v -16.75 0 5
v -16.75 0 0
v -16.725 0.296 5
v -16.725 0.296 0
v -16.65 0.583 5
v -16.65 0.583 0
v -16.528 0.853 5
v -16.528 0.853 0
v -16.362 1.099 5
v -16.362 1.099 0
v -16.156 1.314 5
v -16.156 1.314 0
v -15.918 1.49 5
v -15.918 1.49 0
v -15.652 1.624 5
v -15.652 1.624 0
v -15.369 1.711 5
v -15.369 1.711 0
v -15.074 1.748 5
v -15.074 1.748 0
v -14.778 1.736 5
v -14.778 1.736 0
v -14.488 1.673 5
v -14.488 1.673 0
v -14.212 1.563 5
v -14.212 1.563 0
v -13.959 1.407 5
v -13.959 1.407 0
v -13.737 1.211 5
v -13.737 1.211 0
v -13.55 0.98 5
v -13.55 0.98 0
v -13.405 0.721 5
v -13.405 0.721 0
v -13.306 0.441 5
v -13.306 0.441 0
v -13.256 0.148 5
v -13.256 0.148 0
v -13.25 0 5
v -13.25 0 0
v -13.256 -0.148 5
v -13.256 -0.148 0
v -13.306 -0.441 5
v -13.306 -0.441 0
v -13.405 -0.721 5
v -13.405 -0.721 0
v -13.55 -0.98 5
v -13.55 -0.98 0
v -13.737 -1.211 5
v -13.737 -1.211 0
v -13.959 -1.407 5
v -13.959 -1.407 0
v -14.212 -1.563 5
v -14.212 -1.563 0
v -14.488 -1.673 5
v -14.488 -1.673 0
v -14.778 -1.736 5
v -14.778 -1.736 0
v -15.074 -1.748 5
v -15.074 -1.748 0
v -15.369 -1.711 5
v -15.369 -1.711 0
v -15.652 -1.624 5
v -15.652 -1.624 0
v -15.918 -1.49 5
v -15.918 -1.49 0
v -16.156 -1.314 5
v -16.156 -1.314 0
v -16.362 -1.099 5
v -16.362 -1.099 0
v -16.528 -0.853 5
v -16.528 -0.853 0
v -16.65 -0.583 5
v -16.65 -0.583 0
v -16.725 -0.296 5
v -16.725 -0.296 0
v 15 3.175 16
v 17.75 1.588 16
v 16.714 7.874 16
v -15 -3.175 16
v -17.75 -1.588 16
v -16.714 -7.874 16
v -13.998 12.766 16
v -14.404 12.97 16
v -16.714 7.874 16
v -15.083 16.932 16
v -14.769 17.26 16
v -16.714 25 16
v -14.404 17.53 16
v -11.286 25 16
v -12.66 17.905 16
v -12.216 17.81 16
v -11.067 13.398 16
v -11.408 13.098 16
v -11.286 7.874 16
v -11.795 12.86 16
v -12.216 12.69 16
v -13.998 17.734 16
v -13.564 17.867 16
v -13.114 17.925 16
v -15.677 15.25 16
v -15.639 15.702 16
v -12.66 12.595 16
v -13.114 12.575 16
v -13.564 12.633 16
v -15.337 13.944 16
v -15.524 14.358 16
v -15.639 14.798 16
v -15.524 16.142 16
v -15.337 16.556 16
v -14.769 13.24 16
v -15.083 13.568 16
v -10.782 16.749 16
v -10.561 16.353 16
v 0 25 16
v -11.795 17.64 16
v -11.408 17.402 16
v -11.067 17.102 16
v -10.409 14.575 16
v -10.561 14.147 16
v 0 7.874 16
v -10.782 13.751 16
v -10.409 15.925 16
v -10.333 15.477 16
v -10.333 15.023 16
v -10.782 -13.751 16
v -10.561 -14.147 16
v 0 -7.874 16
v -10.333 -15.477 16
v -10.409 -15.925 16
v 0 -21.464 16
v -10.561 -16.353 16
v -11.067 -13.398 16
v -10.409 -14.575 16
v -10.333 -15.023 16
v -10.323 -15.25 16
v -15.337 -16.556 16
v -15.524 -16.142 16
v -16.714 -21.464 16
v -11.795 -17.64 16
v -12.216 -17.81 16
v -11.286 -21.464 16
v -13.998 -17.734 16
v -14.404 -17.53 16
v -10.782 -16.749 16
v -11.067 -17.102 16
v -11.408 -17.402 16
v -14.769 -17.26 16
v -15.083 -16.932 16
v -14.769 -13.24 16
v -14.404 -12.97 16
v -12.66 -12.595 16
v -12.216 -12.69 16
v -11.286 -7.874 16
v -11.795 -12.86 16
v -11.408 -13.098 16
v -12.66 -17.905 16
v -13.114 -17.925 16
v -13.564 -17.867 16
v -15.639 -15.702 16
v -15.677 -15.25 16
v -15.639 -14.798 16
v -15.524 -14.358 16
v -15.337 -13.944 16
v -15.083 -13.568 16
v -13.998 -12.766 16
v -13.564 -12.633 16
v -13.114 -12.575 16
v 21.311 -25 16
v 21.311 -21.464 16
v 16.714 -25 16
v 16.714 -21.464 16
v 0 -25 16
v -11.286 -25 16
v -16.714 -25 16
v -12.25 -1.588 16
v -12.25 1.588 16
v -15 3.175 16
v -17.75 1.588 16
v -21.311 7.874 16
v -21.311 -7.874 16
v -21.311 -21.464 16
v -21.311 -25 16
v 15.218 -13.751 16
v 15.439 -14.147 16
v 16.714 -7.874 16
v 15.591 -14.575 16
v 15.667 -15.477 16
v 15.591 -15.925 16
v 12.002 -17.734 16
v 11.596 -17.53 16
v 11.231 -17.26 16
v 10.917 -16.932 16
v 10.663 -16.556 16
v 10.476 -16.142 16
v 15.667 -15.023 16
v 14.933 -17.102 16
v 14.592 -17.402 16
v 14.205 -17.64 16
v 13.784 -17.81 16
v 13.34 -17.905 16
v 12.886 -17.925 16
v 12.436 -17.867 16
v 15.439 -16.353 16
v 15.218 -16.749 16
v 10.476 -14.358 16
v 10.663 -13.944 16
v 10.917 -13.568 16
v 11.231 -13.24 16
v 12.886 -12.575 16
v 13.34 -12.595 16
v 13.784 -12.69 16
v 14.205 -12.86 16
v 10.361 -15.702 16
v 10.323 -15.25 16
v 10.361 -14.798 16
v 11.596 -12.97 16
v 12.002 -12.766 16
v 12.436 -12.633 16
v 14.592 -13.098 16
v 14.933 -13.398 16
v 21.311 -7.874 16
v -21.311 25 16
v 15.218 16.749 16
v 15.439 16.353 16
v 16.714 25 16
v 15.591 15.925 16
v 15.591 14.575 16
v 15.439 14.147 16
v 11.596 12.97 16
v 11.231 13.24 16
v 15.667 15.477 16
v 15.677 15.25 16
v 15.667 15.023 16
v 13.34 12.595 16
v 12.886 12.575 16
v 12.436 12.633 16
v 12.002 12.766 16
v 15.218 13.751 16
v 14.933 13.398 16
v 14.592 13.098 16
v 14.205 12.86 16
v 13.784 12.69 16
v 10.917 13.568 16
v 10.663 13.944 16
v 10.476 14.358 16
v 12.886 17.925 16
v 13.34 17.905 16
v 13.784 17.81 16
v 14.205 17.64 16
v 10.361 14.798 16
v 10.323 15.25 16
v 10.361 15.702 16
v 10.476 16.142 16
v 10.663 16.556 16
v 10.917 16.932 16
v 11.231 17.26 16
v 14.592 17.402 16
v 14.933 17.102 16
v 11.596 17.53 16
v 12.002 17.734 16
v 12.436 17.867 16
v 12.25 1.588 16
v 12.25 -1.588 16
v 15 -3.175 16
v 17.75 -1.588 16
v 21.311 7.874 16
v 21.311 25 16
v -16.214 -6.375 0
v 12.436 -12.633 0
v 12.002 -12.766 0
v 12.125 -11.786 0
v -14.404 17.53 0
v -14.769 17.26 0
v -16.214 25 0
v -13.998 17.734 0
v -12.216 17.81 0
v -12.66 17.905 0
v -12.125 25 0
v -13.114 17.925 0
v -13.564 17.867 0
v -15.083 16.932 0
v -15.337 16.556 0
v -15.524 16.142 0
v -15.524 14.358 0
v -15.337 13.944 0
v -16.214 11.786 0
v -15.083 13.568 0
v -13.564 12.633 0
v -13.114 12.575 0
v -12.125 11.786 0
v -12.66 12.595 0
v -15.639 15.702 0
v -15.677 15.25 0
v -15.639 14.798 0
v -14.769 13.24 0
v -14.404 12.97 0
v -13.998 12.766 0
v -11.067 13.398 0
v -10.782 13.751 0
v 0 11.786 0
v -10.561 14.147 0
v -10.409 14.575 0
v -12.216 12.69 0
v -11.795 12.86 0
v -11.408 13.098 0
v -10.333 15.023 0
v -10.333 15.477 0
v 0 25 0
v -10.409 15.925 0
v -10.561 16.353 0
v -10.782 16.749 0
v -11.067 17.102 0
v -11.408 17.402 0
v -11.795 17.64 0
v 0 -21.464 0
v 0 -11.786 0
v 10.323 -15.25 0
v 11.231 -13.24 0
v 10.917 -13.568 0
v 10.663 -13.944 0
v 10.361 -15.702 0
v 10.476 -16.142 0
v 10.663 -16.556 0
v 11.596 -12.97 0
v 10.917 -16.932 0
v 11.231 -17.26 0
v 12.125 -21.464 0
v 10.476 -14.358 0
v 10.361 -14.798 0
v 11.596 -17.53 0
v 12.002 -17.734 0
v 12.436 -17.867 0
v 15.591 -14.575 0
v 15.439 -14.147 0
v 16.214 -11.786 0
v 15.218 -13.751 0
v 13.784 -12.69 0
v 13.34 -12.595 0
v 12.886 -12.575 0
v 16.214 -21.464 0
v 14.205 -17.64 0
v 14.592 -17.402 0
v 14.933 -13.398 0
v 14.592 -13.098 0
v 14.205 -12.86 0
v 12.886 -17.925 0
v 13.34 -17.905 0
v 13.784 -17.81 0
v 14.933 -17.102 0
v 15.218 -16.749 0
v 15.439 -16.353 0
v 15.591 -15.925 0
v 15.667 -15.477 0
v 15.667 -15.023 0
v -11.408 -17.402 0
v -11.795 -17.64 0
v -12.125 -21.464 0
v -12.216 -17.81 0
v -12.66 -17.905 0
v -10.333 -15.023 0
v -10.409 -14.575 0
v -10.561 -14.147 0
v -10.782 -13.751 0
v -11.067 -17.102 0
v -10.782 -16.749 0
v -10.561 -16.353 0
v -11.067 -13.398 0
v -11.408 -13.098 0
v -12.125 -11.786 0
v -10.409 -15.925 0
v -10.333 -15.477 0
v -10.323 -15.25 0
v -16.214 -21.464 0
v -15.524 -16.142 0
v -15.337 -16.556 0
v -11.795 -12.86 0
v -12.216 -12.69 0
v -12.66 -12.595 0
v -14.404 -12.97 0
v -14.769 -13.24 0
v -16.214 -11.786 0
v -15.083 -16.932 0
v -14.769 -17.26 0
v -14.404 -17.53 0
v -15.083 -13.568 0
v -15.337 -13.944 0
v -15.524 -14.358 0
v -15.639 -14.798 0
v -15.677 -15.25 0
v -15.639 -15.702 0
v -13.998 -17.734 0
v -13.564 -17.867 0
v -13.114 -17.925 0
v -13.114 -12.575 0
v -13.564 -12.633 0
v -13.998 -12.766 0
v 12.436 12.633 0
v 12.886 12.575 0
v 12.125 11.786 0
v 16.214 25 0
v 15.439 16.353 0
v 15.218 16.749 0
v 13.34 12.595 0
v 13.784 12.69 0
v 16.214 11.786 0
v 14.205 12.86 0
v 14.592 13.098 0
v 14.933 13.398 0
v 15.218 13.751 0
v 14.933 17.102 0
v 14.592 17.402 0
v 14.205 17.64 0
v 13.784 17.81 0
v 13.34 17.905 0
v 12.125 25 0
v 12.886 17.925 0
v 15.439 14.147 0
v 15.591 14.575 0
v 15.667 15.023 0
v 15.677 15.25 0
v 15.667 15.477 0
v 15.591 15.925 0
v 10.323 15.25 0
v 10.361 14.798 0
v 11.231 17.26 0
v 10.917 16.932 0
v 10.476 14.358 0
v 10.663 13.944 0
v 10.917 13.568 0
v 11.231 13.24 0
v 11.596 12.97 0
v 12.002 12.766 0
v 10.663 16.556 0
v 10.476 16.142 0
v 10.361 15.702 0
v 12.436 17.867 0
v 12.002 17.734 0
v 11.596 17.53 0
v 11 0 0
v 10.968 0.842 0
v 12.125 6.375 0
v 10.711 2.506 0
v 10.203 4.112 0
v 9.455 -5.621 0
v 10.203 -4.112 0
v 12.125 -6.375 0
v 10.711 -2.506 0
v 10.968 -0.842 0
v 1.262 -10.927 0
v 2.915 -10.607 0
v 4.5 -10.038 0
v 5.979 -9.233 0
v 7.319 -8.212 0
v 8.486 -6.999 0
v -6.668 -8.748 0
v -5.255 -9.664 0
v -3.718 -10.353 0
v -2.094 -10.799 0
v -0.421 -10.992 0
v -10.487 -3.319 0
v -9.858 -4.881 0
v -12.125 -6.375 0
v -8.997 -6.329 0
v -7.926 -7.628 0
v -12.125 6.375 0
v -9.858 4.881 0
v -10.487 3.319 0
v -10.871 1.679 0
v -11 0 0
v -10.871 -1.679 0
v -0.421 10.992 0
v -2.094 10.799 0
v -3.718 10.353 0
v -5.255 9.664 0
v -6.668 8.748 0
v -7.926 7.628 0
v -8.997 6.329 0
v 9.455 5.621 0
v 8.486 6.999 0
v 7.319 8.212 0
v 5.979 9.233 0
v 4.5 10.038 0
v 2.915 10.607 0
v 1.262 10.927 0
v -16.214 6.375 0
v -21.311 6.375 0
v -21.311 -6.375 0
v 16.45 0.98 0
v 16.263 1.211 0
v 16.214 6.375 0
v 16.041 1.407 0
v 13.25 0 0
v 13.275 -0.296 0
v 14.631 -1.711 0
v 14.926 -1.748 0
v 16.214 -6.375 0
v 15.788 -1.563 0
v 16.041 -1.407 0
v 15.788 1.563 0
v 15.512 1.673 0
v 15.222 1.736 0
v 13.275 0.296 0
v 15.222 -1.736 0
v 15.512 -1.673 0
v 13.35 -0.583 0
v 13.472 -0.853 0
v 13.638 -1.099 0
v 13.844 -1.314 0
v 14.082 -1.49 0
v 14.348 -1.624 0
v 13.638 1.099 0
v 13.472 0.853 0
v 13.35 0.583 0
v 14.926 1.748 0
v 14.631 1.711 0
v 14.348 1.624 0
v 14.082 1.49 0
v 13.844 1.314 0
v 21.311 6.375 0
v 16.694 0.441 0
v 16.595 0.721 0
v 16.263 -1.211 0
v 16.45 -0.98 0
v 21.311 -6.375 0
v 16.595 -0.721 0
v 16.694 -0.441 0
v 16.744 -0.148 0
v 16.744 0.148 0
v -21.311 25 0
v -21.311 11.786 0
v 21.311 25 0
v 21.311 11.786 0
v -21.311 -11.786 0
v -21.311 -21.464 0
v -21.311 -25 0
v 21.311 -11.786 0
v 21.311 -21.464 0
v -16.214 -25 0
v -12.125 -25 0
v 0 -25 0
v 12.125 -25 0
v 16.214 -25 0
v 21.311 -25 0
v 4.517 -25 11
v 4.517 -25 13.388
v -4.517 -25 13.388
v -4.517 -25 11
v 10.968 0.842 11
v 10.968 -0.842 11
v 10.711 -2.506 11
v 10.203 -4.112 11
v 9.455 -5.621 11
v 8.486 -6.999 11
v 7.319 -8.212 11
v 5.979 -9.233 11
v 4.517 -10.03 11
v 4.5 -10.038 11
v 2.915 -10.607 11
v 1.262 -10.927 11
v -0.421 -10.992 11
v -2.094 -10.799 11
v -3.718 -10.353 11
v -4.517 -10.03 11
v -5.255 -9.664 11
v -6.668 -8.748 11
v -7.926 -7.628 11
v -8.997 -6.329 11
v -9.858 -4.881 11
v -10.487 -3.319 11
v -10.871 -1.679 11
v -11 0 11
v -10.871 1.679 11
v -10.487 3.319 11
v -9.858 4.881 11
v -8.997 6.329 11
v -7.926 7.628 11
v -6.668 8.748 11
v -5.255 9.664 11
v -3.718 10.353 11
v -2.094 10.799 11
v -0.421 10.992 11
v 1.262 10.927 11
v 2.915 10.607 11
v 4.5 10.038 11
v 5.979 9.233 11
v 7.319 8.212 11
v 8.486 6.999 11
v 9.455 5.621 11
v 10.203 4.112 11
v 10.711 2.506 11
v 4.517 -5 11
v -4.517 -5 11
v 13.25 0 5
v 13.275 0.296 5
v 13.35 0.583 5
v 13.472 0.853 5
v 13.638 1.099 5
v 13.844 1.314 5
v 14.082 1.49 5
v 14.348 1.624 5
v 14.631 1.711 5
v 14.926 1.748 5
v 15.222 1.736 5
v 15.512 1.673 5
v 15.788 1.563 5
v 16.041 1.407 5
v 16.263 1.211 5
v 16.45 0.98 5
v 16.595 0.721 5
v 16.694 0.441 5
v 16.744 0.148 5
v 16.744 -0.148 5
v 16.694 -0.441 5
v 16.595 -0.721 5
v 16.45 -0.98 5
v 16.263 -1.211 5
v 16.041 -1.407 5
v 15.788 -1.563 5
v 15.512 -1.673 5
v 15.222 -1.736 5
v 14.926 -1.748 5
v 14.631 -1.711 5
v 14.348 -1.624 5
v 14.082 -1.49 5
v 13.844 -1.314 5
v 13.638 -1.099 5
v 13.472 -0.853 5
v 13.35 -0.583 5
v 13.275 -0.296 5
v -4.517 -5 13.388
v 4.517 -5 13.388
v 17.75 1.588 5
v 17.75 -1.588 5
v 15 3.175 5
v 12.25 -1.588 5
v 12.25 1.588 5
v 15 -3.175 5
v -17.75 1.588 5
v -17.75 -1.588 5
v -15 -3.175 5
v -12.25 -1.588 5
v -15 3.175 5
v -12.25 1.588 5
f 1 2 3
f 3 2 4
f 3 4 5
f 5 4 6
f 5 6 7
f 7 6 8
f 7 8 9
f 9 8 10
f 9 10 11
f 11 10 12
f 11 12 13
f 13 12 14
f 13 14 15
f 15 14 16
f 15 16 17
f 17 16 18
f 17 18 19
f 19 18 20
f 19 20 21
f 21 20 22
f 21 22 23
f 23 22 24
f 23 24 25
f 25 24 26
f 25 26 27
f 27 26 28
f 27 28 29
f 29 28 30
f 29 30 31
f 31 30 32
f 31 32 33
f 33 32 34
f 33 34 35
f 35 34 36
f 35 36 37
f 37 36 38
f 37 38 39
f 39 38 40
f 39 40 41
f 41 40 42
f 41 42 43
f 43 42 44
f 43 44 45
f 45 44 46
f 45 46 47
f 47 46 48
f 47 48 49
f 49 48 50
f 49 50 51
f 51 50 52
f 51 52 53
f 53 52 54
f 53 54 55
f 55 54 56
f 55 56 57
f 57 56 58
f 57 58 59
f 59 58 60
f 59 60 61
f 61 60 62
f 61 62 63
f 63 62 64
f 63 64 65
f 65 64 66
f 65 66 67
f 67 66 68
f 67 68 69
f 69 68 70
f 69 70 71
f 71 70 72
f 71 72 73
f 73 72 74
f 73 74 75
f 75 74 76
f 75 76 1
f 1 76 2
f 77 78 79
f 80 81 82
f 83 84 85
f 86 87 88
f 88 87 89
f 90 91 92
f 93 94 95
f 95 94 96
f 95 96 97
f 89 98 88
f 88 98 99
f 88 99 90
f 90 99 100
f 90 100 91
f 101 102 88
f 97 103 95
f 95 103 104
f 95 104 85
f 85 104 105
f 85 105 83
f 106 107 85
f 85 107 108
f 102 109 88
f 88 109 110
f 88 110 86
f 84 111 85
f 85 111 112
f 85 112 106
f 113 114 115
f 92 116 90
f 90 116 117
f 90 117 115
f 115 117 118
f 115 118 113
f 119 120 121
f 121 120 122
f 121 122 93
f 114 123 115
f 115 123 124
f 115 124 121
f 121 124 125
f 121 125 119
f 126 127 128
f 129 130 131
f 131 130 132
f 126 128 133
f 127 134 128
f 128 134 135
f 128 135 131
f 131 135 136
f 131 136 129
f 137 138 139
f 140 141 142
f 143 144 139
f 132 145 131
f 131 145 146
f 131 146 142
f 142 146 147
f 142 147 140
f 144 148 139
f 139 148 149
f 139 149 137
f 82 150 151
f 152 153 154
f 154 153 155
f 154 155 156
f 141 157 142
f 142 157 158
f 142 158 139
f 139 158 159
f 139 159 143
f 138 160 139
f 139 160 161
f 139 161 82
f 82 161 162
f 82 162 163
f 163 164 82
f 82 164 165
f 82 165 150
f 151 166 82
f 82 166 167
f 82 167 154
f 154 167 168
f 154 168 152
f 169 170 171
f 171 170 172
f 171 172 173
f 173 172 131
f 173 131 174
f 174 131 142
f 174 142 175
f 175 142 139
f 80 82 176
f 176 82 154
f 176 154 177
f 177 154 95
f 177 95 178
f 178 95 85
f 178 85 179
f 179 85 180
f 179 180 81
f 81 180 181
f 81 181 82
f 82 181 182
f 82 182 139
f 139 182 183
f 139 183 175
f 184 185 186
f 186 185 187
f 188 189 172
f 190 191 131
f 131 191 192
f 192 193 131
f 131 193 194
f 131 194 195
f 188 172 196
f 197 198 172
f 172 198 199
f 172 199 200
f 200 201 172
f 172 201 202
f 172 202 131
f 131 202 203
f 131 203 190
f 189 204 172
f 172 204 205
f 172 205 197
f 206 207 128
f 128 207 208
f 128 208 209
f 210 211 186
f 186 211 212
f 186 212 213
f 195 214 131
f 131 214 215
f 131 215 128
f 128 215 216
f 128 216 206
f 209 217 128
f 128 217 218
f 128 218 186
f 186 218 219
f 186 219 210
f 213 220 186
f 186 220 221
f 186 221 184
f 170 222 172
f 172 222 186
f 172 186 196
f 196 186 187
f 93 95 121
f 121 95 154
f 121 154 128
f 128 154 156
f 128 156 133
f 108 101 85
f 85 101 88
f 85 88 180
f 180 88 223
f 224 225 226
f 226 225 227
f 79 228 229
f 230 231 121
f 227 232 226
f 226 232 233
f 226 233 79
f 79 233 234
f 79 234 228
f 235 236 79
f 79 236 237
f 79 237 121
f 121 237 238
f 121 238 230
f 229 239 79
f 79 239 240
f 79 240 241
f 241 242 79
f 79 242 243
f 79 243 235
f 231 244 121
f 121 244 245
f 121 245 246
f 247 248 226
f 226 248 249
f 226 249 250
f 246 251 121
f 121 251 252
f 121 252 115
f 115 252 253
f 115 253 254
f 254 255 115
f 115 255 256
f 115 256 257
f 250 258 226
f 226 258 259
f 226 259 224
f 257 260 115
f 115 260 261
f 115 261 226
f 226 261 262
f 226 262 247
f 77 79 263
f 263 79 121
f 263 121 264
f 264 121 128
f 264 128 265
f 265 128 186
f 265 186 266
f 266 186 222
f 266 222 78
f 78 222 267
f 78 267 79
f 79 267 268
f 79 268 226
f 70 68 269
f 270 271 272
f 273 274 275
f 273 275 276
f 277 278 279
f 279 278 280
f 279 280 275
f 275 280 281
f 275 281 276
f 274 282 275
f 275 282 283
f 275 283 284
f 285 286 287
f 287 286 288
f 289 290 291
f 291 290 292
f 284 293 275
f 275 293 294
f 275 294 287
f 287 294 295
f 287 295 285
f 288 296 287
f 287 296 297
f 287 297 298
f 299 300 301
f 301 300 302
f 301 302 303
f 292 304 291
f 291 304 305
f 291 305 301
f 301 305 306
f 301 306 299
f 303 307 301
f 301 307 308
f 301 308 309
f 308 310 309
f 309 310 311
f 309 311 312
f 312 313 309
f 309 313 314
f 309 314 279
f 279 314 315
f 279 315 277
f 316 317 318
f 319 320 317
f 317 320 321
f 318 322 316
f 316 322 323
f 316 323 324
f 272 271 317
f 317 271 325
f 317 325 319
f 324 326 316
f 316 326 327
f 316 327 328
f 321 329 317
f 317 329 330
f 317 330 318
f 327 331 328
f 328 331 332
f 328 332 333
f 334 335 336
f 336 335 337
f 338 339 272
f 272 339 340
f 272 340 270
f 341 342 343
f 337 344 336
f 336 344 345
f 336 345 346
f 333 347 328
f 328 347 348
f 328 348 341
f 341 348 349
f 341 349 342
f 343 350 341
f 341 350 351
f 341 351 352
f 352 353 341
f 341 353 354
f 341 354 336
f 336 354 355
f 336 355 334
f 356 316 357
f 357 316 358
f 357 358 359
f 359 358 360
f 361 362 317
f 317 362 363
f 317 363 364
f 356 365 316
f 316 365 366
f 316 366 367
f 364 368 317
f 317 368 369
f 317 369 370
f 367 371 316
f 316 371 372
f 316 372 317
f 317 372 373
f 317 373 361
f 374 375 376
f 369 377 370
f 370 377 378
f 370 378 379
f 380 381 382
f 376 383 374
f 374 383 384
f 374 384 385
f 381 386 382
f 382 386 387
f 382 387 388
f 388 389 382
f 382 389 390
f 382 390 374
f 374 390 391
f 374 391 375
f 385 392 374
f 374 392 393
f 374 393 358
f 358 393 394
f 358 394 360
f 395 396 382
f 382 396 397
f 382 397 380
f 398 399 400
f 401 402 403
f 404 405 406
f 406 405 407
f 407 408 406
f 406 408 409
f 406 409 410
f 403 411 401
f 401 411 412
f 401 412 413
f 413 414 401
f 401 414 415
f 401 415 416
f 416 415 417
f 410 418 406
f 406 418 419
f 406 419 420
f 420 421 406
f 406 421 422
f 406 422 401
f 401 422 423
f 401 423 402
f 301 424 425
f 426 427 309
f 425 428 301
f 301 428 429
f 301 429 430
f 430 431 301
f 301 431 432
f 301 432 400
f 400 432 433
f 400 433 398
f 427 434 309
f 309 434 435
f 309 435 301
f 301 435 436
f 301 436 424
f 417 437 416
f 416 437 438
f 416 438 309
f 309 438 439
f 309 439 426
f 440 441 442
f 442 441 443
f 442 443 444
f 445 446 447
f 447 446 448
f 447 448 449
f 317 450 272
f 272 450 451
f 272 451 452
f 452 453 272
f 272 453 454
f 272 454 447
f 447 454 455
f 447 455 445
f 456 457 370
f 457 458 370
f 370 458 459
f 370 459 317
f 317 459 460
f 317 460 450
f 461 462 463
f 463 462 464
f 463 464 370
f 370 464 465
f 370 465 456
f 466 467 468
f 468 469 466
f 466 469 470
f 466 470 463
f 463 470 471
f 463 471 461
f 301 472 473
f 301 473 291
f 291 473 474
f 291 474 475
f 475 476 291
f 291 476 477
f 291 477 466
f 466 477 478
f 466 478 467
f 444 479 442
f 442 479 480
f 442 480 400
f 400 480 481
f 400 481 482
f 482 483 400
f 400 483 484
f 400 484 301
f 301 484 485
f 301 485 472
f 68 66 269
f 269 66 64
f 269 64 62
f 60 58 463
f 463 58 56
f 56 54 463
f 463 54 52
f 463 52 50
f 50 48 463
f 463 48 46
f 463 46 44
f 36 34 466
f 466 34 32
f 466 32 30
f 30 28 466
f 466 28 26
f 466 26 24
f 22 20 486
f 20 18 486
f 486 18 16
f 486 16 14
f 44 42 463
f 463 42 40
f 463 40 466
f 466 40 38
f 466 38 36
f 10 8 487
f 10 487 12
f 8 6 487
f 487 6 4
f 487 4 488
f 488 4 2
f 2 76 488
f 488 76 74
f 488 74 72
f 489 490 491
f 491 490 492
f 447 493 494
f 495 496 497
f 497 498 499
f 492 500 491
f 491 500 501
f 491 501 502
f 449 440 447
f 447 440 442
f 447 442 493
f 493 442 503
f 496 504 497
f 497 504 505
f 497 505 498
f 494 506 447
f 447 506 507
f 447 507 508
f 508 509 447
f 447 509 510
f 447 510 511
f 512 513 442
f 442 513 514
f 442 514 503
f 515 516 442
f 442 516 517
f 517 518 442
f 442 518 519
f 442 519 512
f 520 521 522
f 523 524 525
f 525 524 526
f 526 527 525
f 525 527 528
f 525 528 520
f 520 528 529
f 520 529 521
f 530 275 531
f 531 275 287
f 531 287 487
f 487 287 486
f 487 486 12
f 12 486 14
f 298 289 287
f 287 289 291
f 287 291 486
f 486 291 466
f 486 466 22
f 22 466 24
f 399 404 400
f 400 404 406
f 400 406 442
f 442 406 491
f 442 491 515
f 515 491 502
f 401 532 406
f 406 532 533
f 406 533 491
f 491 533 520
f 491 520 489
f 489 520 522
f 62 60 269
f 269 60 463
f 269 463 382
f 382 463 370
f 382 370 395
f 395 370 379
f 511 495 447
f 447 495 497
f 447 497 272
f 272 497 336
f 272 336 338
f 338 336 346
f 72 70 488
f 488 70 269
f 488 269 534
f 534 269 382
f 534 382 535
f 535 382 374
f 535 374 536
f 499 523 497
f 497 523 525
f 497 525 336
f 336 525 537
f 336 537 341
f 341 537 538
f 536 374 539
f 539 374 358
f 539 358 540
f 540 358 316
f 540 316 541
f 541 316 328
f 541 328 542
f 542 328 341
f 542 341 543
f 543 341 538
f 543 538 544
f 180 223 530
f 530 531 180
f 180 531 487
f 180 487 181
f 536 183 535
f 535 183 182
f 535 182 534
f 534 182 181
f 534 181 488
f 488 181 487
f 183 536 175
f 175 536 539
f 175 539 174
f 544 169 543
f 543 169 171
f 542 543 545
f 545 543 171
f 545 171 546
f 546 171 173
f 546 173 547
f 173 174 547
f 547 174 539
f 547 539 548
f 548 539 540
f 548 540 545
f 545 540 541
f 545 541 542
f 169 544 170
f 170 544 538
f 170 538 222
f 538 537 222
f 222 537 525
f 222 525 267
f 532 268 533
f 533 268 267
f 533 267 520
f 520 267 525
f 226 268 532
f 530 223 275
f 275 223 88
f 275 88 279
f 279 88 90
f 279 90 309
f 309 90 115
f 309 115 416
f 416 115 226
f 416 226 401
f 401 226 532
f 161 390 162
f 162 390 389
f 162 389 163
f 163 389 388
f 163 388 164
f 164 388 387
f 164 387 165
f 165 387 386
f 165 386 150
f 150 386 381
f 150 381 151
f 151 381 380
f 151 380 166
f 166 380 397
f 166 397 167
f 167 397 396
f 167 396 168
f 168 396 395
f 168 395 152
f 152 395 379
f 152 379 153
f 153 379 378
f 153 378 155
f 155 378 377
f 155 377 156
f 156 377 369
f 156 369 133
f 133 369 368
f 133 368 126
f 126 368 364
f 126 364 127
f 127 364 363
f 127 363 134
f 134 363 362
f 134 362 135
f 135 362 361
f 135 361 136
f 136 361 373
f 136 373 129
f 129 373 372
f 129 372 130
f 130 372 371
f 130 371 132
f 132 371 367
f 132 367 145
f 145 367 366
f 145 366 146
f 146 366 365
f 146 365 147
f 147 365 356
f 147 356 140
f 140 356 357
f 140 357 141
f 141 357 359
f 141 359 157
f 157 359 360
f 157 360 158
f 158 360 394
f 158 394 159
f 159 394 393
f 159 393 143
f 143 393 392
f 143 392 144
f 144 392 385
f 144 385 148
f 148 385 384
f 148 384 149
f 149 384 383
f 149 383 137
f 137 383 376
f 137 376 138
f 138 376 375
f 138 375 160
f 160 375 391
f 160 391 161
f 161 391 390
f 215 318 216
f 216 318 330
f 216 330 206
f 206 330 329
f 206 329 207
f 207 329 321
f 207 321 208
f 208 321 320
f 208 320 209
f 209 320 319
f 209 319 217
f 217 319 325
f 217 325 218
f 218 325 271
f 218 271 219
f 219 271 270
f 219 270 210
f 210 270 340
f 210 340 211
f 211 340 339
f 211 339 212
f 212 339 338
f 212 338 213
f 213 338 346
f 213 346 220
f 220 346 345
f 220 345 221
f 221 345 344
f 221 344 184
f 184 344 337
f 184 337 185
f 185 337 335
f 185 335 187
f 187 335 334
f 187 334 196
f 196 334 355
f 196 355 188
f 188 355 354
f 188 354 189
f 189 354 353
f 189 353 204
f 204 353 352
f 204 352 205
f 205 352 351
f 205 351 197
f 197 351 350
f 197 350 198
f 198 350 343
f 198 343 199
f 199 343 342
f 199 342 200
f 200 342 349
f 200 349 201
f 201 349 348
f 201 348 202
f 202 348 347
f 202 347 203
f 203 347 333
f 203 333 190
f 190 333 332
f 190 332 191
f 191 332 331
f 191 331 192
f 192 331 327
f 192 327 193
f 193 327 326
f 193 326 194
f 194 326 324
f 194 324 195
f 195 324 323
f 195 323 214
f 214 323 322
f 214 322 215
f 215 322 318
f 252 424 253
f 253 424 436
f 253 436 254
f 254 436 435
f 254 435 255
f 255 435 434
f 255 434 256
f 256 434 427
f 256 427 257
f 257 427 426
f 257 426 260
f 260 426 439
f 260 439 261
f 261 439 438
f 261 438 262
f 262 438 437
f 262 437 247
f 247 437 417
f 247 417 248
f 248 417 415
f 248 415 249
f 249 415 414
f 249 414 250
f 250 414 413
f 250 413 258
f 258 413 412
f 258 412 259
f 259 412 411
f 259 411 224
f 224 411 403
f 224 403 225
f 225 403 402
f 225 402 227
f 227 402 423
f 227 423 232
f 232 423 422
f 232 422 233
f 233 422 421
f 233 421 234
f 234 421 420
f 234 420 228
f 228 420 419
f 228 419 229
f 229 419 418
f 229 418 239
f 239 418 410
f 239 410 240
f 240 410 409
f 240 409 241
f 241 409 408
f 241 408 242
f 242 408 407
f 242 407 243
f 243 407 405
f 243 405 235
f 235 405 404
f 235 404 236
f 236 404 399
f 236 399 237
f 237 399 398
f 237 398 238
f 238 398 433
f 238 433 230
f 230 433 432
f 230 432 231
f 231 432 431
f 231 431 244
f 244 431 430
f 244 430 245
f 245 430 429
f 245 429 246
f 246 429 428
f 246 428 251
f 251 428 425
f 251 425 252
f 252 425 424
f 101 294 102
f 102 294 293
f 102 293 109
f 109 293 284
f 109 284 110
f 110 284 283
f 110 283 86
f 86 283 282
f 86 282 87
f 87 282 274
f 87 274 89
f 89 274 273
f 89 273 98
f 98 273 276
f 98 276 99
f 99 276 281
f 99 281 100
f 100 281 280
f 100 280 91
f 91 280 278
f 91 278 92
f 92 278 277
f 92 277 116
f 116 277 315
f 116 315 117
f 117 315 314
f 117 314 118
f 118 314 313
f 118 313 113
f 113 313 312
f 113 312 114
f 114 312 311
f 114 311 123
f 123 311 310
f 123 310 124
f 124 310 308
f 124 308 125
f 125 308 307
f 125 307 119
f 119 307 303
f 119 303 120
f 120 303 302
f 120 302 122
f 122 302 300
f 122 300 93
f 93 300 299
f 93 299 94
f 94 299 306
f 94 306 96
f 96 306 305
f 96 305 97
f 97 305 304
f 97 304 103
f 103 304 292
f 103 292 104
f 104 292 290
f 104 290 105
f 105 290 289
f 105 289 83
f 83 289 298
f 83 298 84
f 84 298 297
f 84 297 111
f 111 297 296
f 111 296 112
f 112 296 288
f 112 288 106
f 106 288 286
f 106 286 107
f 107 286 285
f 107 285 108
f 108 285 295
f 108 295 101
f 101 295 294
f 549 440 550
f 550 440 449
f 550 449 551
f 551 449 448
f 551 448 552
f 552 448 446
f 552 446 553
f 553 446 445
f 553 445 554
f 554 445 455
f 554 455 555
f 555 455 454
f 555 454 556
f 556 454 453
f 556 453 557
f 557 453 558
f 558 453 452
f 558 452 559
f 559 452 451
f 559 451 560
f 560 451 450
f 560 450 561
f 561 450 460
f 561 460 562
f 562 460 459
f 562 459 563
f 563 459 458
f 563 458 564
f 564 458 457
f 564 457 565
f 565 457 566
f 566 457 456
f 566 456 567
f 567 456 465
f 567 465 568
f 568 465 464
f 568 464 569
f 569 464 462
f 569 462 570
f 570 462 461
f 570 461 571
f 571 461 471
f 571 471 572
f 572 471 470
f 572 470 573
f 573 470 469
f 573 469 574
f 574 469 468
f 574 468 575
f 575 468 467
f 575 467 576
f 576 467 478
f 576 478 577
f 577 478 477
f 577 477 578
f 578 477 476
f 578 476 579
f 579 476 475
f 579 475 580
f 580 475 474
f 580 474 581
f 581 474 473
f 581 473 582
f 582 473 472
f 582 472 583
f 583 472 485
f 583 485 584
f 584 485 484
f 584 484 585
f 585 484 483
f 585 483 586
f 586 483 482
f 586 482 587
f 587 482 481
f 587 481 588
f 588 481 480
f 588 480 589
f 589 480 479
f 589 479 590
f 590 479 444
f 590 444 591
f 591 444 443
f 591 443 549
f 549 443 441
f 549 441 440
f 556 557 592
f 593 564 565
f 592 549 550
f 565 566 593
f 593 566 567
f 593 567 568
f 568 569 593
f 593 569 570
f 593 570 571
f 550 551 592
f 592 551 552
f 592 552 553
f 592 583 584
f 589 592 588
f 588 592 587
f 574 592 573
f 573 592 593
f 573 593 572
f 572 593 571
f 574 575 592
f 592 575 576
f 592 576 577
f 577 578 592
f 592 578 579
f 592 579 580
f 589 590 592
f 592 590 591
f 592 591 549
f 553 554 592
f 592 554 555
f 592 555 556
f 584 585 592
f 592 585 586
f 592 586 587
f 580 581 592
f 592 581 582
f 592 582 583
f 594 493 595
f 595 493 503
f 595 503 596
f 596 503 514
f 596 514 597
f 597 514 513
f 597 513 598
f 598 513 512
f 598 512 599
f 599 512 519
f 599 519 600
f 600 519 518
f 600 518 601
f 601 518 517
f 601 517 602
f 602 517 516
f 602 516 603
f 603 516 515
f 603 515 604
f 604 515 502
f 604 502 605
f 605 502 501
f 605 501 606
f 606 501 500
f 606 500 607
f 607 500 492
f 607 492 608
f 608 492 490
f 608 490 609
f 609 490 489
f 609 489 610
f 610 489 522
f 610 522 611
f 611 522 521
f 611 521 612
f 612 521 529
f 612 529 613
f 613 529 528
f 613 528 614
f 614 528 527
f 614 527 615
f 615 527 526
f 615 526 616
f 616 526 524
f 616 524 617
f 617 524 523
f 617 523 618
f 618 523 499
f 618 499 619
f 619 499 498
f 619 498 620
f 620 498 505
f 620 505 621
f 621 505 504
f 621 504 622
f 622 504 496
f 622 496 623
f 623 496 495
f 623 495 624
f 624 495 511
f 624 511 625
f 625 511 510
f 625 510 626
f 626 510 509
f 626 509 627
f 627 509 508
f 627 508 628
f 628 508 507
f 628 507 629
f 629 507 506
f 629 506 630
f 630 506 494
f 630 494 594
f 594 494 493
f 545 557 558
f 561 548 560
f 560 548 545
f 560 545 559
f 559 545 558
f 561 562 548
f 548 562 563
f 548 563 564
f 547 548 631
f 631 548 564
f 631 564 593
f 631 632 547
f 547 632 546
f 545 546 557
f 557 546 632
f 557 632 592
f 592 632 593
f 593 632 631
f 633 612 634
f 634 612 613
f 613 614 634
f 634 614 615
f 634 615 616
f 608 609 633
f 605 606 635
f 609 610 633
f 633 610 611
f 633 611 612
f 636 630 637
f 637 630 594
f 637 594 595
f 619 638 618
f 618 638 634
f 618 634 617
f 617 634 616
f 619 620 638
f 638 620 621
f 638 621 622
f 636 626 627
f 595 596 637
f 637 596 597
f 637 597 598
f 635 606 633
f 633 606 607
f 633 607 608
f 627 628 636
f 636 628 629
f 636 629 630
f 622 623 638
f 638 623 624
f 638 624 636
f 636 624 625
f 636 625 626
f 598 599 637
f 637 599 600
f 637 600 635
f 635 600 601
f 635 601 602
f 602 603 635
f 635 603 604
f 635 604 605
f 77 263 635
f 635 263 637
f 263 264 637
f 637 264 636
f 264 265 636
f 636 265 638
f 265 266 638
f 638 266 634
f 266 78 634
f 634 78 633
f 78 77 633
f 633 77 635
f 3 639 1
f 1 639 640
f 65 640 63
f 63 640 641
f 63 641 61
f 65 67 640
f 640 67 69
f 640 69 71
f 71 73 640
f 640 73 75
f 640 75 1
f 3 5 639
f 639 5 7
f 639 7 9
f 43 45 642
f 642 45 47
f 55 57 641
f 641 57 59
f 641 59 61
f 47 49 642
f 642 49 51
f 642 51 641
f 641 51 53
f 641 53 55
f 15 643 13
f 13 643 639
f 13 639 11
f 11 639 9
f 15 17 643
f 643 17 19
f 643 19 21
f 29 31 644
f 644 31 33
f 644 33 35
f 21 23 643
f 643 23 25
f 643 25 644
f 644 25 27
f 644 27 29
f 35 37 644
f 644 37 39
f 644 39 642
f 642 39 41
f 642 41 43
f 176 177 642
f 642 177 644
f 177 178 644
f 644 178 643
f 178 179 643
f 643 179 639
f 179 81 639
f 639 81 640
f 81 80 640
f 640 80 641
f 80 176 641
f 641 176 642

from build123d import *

# Parameters (mm, degrees)
SKETCH1_W           = 42.62295082
SKETCH1_H           = 50
SKETCH1_R           = 2.677018134
BOSS_EXTRUDE1_DEPTH = 16
SKETCH2_R           = 11
CUT_EXTRUDE2_DEPTH  = 11
SKETCH3_R           = 1.75
CUT_EXTRUDE3_DEPTH  = 10
SKETCH6_W           = 9.034037672
SKETCH6_H           = 2.387531408
CUT_EXTRUDE5_DEPTH  = 20
CUT_EXTRUDE6_START  = -5
CUT_EXTRUDE6_DEPTH  = 32.540101042


with BuildPart() as part:
    # Sketch1 → Boss-Extrude1 (new body)
    with BuildSketch(Plane.XY):
        Rectangle(SKETCH1_W, SKETCH1_H)
        with Locations((-13, -15.25)):
            Circle(SKETCH1_R, mode=Mode.SUBTRACT)
        with Locations(Location((13, -15.25, 0), (0, 0, 180))):
            Circle(SKETCH1_R, mode=Mode.SUBTRACT)
        with Locations((13, 15.25)):
            Circle(SKETCH1_R, mode=Mode.SUBTRACT)
        with Locations(Location((-13, 15.25, 0), (0, 0, 180))):
            Circle(SKETCH1_R, mode=Mode.SUBTRACT)
    extrude(amount=BOSS_EXTRUDE1_DEPTH)

    # Sketch2 → Cut-Extrude2 (cut)
    with BuildSketch(Plane.XY):
        Circle(SKETCH2_R)
    extrude(amount=CUT_EXTRUDE2_DEPTH, mode=Mode.SUBTRACT)

    # Sketch3 → Cut-Extrude3 (cut)
    with BuildSketch(Plane(origin=(0, 0, 0), x_dir=(-1, 0, 0), z_dir=(0, 0, -1))):
        with Locations((-15, 0)):
            Circle(SKETCH3_R)
        with Locations(Location((15, 0, 0), (0, 0, 180))):
            Circle(SKETCH3_R)
    extrude(amount=-CUT_EXTRUDE3_DEPTH, mode=Mode.SUBTRACT)

    # Sketch6 → Cut-Extrude5 (cut)
    with BuildSketch(Plane.XZ.offset(25)):
        with Locations((0, 12.193765704)):
            Rectangle(SKETCH6_W, SKETCH6_H)
    extrude(amount=-CUT_EXTRUDE5_DEPTH, mode=Mode.SUBTRACT)

    # Sketch9 → Cut-Extrude6 (cut, through all)
    with BuildSketch(Plane(origin=(0, 0, 0), x_dir=(-1, 0, 0), z_dir=(0, 0, -1)).offset(CUT_EXTRUDE6_START)):
        Polygon((-15, 3.175426481), (-17.75, 1.58771324), (-17.75, -1.58771324), (-15, -3.175426481), (-12.25, -1.58771324), (-12.25, 1.58771324), align=None)
        Polygon((12.25, 1.58771324), (15, 3.175426481), (17.75, 1.58771324), (17.75, -1.58771324), (15, -3.175426481), (12.25, -1.58771324), align=None)
    extrude(amount=-CUT_EXTRUDE6_DEPTH, mode=Mode.SUBTRACT)


solid = part.part
